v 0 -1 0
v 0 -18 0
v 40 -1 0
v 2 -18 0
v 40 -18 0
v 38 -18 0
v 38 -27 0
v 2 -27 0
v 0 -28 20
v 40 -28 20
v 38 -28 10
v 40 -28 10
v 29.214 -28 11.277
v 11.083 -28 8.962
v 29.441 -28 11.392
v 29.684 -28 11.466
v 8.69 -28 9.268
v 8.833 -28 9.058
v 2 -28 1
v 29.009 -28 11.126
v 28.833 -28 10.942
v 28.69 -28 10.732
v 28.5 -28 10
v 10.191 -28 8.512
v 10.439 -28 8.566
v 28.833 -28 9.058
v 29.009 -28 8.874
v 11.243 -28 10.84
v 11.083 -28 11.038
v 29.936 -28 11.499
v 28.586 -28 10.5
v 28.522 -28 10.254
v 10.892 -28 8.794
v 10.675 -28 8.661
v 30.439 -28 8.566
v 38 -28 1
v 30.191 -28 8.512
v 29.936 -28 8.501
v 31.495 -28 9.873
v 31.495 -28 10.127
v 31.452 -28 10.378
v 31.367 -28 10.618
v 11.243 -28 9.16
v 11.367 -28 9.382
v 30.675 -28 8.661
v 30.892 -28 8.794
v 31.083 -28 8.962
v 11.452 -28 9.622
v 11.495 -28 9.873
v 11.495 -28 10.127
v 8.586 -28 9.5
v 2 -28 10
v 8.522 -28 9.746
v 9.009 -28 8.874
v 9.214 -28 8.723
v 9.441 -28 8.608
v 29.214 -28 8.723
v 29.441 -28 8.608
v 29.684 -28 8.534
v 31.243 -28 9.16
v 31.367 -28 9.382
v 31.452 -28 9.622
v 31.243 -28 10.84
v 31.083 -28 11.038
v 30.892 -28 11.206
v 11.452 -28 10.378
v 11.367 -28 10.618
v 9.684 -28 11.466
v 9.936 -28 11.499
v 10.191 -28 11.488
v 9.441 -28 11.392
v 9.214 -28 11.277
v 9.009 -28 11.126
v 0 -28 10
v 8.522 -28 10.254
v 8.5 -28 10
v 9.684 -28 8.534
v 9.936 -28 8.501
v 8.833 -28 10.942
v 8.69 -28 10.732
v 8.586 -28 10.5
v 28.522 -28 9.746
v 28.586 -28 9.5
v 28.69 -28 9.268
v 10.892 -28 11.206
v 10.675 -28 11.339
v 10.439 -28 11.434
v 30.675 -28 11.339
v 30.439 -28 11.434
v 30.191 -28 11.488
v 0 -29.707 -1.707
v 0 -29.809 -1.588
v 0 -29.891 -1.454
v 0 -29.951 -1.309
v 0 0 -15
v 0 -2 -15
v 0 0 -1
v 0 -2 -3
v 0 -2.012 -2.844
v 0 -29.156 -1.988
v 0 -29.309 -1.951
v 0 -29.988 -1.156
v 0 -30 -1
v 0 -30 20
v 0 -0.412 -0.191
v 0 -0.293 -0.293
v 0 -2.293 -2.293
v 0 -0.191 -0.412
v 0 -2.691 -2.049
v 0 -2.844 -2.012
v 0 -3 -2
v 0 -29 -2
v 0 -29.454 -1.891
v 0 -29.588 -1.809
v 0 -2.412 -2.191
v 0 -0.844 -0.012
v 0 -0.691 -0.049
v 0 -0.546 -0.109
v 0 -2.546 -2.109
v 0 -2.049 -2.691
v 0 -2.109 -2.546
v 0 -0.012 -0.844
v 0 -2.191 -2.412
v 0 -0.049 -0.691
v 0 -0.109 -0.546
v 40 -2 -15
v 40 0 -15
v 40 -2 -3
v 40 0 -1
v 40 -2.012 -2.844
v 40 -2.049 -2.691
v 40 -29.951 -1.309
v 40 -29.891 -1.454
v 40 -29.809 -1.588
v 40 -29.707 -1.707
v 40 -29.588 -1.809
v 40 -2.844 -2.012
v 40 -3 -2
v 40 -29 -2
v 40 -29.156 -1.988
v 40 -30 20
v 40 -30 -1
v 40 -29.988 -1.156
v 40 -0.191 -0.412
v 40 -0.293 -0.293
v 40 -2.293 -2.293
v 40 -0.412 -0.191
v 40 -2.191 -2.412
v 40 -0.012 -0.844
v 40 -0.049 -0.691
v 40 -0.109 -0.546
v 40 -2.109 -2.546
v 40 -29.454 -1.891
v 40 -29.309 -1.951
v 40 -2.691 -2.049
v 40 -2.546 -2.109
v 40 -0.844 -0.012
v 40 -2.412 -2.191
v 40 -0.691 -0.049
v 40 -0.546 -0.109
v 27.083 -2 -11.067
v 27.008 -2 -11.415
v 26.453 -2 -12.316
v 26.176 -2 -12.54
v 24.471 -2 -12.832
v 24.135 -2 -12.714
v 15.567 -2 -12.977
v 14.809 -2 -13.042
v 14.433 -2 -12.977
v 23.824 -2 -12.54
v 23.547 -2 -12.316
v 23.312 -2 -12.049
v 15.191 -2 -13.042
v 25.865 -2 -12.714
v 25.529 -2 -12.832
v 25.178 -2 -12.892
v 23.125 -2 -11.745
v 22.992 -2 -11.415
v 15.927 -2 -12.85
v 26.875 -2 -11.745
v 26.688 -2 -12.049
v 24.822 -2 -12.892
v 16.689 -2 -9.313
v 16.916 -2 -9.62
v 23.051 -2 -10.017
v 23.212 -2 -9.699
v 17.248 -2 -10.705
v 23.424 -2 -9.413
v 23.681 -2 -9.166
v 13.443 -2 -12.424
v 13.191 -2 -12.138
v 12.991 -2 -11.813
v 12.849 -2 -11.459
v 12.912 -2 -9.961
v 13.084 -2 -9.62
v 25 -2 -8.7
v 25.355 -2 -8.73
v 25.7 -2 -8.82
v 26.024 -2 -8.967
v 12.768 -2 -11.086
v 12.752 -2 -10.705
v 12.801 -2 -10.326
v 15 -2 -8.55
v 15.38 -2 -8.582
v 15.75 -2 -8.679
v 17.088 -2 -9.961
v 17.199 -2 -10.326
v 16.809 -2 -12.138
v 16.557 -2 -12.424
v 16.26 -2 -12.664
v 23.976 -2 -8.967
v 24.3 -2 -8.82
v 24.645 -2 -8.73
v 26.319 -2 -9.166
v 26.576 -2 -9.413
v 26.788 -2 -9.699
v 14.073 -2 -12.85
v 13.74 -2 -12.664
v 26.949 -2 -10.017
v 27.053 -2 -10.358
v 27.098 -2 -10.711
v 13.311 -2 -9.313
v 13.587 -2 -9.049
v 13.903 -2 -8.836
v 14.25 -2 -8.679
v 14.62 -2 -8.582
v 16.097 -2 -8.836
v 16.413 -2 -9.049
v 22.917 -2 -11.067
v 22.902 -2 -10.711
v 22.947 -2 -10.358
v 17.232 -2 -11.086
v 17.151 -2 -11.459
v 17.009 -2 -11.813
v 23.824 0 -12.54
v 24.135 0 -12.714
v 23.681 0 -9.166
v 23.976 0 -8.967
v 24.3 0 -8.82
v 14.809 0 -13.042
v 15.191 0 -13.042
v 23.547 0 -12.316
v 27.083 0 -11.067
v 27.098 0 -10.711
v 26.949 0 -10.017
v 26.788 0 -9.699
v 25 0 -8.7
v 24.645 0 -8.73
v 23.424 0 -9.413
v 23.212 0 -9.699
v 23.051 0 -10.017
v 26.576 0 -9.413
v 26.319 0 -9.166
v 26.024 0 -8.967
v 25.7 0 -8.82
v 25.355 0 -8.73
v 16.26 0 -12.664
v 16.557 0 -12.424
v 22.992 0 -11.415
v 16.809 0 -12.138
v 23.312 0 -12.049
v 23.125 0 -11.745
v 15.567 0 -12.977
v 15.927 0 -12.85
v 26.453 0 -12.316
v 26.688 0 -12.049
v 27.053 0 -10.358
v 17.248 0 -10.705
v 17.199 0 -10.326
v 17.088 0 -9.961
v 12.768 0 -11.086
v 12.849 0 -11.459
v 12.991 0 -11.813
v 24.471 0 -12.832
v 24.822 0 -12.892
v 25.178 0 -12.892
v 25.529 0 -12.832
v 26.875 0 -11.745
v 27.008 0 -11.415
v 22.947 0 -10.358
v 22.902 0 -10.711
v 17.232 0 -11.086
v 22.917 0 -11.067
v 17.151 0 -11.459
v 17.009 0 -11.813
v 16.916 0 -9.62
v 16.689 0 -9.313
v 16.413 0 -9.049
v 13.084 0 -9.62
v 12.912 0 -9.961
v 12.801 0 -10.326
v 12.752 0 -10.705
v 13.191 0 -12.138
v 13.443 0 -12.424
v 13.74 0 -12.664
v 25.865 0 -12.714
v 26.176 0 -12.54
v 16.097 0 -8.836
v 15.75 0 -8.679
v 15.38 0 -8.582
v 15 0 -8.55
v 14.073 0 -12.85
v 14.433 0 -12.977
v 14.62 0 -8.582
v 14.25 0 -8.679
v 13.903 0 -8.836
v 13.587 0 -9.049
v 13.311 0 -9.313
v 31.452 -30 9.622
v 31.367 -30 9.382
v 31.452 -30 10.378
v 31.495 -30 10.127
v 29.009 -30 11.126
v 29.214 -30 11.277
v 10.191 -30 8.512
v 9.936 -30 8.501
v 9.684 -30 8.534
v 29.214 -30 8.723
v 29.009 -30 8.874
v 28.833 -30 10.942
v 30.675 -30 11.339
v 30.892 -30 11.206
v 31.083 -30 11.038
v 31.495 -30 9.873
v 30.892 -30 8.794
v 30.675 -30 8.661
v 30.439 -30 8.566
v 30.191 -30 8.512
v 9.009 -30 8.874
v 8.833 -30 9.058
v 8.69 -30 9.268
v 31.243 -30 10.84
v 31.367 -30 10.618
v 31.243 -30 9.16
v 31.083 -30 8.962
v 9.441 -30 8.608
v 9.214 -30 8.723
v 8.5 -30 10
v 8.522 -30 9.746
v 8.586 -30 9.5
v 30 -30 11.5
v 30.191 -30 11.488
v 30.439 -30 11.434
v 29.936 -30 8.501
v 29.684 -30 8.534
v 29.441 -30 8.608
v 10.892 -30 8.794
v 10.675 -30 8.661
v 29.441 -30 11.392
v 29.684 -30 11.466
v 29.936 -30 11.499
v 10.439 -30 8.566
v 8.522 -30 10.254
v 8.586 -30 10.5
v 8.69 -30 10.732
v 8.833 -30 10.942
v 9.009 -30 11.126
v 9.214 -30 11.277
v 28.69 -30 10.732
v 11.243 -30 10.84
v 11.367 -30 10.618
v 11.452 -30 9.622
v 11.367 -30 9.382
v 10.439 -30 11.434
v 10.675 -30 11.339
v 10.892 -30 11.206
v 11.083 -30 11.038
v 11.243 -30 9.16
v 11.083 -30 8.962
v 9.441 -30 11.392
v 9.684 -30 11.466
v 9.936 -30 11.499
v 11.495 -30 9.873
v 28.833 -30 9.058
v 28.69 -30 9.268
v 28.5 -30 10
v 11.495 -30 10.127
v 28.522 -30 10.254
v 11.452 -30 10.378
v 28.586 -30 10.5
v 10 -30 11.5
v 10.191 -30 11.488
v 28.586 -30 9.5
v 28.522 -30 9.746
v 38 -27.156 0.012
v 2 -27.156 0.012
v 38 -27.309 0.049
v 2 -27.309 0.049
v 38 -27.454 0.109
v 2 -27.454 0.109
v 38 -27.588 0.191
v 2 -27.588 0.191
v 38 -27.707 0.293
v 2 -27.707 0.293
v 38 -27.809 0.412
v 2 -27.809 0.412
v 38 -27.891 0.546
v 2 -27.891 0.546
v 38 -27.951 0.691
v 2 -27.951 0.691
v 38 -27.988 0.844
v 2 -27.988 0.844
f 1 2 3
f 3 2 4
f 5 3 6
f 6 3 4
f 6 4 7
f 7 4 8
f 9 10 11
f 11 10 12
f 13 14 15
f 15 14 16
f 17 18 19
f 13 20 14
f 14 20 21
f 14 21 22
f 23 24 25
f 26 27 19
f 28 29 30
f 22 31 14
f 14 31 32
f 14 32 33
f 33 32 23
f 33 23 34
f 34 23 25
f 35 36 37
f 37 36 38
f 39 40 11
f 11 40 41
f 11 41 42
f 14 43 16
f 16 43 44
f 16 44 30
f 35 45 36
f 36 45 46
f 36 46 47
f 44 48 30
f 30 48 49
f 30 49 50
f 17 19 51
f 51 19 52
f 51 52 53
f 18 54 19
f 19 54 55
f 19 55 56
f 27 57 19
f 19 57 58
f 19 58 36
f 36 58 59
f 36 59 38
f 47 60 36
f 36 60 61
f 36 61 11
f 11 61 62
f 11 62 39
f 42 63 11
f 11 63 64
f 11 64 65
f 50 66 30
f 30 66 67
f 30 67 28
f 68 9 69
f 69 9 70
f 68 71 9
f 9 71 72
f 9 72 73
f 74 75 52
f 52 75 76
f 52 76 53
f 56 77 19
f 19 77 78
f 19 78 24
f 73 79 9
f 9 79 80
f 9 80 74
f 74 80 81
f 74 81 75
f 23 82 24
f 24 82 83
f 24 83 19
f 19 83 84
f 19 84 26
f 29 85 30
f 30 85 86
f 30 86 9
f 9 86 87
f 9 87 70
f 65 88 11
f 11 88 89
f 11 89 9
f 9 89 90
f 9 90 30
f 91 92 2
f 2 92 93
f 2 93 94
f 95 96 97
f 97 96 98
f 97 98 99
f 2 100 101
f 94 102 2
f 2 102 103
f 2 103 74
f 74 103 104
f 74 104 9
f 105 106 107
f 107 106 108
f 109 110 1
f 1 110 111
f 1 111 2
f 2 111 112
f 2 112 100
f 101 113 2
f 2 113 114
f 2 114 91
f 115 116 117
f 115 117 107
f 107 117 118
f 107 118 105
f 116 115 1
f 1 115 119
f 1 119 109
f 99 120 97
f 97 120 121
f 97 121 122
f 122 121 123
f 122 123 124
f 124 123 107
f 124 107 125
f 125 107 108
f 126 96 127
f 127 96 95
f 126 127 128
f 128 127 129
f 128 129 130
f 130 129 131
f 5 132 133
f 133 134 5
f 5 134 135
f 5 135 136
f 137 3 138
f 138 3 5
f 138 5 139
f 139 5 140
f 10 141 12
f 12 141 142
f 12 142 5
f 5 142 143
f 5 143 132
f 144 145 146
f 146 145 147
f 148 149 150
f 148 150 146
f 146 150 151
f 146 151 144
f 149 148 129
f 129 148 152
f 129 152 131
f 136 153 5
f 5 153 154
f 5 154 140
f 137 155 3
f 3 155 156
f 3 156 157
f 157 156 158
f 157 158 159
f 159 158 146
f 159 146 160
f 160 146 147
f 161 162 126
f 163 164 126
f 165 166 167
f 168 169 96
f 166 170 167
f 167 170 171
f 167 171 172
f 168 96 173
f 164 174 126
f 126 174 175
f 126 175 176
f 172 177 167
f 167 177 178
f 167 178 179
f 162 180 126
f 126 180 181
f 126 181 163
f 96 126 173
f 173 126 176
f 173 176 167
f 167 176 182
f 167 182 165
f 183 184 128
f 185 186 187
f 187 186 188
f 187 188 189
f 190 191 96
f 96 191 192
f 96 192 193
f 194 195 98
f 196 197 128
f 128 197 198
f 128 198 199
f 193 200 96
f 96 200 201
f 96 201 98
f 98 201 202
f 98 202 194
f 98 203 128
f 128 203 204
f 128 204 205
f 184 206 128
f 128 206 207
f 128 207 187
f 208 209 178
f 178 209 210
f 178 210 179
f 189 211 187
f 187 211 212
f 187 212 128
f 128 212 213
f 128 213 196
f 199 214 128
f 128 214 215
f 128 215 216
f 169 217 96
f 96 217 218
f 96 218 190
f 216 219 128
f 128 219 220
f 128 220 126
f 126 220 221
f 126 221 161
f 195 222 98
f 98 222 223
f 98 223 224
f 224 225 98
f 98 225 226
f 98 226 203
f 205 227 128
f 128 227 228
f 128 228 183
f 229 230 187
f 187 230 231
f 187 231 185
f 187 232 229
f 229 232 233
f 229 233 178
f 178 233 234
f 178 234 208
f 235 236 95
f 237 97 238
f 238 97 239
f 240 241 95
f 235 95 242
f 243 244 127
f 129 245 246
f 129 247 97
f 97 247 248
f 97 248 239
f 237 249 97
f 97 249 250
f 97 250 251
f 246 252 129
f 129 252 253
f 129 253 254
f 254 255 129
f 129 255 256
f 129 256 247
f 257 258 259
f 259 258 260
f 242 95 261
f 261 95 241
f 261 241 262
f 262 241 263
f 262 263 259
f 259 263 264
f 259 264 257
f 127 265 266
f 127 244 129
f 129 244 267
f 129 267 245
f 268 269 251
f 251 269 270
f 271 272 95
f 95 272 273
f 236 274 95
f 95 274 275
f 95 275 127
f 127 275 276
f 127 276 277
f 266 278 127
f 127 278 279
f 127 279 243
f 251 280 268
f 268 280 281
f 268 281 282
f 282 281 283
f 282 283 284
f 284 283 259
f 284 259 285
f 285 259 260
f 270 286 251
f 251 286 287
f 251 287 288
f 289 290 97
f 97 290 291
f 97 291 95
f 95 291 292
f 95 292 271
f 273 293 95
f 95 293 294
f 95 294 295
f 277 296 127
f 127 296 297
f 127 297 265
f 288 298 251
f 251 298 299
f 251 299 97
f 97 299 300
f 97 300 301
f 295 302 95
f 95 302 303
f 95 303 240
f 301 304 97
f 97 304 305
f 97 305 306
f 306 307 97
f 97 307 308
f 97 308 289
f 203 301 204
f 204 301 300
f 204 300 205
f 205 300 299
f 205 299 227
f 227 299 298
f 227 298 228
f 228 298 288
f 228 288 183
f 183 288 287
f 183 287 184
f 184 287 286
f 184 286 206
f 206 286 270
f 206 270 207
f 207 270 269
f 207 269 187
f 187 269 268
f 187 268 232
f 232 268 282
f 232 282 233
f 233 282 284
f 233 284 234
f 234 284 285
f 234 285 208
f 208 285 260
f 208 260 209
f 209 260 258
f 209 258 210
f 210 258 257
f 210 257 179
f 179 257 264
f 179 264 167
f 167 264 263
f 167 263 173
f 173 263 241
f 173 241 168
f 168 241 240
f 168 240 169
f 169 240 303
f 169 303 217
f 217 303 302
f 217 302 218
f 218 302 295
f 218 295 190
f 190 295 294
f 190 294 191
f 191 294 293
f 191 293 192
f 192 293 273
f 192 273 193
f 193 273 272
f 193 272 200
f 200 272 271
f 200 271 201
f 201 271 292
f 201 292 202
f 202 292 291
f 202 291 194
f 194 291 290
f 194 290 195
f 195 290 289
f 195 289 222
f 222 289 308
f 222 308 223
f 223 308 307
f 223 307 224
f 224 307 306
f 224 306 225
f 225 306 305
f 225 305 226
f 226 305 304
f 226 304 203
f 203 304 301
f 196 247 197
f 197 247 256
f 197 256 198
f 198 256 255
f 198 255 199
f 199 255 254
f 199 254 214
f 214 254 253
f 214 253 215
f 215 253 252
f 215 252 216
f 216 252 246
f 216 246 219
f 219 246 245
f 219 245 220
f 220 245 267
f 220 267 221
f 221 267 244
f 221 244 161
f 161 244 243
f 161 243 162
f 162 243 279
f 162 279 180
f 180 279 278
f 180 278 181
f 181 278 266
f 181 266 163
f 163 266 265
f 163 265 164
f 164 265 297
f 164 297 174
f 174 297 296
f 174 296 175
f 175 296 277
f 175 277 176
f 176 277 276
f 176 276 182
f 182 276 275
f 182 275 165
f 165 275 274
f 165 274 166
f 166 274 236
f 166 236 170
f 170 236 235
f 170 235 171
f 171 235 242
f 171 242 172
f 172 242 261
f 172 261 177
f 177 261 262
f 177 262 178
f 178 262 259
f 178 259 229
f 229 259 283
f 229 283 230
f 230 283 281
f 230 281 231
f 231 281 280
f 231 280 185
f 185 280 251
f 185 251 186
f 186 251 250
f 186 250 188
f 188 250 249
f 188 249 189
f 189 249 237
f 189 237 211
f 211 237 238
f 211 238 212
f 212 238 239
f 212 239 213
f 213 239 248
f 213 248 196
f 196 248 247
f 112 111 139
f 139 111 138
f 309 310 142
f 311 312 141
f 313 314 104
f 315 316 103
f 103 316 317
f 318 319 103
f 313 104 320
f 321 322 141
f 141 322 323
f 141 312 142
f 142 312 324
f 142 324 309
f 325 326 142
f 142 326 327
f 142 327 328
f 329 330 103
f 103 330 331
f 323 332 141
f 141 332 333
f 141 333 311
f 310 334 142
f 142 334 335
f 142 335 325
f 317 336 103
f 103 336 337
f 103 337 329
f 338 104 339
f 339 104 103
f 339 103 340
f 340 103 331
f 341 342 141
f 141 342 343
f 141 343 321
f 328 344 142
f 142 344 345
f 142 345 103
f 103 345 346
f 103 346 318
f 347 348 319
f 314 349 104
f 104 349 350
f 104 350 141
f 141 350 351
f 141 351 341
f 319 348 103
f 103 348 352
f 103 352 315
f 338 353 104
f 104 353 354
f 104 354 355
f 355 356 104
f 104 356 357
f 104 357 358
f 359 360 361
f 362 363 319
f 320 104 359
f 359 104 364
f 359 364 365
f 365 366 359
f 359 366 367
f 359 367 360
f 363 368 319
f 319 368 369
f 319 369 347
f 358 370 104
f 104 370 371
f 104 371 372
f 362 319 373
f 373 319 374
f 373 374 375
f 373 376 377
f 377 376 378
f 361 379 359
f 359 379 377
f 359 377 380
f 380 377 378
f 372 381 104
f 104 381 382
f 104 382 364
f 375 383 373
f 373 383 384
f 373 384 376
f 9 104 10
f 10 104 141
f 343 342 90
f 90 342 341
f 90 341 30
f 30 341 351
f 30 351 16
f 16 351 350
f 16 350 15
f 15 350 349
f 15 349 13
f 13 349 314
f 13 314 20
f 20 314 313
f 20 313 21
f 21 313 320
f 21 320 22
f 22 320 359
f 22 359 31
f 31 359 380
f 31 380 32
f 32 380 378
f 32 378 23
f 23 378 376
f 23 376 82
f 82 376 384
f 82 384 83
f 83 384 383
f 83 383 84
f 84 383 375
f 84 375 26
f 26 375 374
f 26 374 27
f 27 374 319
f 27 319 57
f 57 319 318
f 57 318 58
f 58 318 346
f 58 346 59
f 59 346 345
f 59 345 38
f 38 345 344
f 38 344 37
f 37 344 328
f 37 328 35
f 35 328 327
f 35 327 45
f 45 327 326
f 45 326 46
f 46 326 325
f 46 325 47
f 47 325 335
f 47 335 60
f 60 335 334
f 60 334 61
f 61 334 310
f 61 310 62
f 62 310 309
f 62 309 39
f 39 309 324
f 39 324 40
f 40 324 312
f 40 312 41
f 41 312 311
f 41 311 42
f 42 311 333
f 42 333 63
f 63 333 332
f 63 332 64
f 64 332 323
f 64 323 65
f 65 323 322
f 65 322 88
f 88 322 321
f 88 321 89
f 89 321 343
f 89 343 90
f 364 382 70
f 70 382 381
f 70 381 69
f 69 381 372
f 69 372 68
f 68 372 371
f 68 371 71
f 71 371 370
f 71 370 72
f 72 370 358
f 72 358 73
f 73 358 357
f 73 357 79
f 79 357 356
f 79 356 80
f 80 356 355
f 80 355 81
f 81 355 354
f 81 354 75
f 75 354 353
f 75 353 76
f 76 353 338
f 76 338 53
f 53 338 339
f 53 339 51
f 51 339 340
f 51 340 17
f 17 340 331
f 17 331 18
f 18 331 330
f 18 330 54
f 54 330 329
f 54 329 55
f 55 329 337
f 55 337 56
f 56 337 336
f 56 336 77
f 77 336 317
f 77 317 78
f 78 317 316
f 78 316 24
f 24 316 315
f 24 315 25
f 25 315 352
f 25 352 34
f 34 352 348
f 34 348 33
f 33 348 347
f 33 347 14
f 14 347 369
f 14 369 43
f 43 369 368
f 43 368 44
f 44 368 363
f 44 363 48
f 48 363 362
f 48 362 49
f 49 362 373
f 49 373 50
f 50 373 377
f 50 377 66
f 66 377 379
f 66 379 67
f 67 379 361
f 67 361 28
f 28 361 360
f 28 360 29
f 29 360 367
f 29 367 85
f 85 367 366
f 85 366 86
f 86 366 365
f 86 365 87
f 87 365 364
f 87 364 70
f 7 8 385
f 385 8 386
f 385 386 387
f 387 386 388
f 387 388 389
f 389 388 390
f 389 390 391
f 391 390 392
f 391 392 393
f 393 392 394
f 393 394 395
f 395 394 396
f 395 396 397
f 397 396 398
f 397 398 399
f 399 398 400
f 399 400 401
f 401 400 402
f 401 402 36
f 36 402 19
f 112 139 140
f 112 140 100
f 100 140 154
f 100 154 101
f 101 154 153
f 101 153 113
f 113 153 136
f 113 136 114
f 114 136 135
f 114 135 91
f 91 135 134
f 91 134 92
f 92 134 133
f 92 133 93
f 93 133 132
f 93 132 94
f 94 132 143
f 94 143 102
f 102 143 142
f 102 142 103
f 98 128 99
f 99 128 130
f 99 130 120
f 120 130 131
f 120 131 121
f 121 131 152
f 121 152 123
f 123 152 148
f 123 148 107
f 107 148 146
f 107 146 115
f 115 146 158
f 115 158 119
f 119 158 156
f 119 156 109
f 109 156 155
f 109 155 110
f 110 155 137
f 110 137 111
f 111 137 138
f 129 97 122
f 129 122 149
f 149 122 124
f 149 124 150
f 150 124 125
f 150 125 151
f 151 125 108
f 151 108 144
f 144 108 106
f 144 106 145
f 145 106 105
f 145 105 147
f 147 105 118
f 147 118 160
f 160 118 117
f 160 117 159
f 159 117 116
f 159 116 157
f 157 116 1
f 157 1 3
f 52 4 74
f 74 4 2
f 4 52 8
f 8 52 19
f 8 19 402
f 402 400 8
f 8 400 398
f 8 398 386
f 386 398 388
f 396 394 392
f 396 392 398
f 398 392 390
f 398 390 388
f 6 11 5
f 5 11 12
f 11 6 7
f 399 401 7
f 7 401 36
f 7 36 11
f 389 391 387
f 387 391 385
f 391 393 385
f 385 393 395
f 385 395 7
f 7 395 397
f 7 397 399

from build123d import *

# Parameters (mm, degrees)
SKETCH1_W           = 40
SKETCH1_H           = 15
SKETCH1_R           = 2.25
SKETCH1_R_2         = 2.1
BOSS_EXTRUDE1_DEPTH = 2
SKETCH2_W           = 40
SKETCH2_H           = 2
BOSS_EXTRUDE2_DEPTH = 28
SKETCH3_W           = 40
SKETCH3_H           = 2
BOSS_EXTRUDE3_DEPTH = 20
SKETCH4_R           = 1.5
CUT_EXTRUDE1_DEPTH  = 20
FILLET1_R           = 1
BOSS_EXTRUDE4_START = 2
BOSS_EXTRUDE4_DEPTH = 2


with BuildPart() as part:
    # Sketch1 → Boss-Extrude1 (new body)
    with BuildSketch(Plane(origin=(0, 0, 0), x_dir=(1, 0, 0), z_dir=(0, 1, 0))):
        with Locations((20, 7.5)):
            Rectangle(SKETCH1_W, SKETCH1_H)
        with Locations(Location((15, 10.8, 0), (0, 0, 270))):
            Circle(SKETCH1_R, mode=Mode.SUBTRACT)
        with Locations(Location((25, 10.8, 0), (0, 0, 270))):
            Circle(SKETCH1_R_2, mode=Mode.SUBTRACT)
    extrude(amount=-BOSS_EXTRUDE1_DEPTH)

    # Sketch2 → Boss-Extrude2 (add)
    with BuildSketch(Plane.XZ.offset(2)):
        with Locations((20, -1)):
            Rectangle(SKETCH2_W, SKETCH2_H)
    extrude(amount=BOSS_EXTRUDE2_DEPTH)

    # Sketch3 → Boss-Extrude3 (add)
    with BuildSketch(Plane.XY):
        with Locations((20, -29)):
            Rectangle(SKETCH3_W, SKETCH3_H)
    extrude(amount=BOSS_EXTRUDE3_DEPTH)

    # Sketch4 → Cut-Extrude1 (cut)
    with BuildSketch(Plane(origin=(0, -28, 0), x_dir=(1, 0, 0), z_dir=(0, 1, 0))):
        with Locations(Location((10, -10, 0), (0, 0, 180))):
            Circle(SKETCH4_R)
        with Locations(Location((30, -10, 0), (0, 0, 180))):
            Circle(SKETCH4_R)
    extrude(amount=-CUT_EXTRUDE1_DEPTH, mode=Mode.SUBTRACT)

    # Fillet1
    fillet1_edges = [part.edges().sort_by_distance(p)[0] for p in [
        (20, -2, -2),
        (20, -30, -2),
        (20, -28, 0),
        (20, 0, 0),
    ]]
    fillet(fillet1_edges, radius=FILLET1_R)

    # Sketch5 → Boss-Extrude4 (add)
    with BuildSketch(Plane(origin=(0, 0, 0), x_dir=(0, 0, -1), z_dir=(1, 0, 0)).offset(BOSS_EXTRUDE4_START)):
        with BuildLine():
            Line((0, -18), (-10, -28))
            Line((-10, -28), (-1, -28))
            ThreePointArc((-1, -28), (-0.292893219, -27.707106781), (0, -27))
            Line((0, -27), (0, -18))
        make_face()
    boss_extrude4 = extrude(amount=-BOSS_EXTRUDE4_DEPTH)

    # Mirror1: Boss-Extrude4 across plane
    add(boss_extrude4.mirror(Plane(origin=(20, 0, 0), x_dir=(0, 0, 1), z_dir=(1, 0, 0))))


solid = part.part
